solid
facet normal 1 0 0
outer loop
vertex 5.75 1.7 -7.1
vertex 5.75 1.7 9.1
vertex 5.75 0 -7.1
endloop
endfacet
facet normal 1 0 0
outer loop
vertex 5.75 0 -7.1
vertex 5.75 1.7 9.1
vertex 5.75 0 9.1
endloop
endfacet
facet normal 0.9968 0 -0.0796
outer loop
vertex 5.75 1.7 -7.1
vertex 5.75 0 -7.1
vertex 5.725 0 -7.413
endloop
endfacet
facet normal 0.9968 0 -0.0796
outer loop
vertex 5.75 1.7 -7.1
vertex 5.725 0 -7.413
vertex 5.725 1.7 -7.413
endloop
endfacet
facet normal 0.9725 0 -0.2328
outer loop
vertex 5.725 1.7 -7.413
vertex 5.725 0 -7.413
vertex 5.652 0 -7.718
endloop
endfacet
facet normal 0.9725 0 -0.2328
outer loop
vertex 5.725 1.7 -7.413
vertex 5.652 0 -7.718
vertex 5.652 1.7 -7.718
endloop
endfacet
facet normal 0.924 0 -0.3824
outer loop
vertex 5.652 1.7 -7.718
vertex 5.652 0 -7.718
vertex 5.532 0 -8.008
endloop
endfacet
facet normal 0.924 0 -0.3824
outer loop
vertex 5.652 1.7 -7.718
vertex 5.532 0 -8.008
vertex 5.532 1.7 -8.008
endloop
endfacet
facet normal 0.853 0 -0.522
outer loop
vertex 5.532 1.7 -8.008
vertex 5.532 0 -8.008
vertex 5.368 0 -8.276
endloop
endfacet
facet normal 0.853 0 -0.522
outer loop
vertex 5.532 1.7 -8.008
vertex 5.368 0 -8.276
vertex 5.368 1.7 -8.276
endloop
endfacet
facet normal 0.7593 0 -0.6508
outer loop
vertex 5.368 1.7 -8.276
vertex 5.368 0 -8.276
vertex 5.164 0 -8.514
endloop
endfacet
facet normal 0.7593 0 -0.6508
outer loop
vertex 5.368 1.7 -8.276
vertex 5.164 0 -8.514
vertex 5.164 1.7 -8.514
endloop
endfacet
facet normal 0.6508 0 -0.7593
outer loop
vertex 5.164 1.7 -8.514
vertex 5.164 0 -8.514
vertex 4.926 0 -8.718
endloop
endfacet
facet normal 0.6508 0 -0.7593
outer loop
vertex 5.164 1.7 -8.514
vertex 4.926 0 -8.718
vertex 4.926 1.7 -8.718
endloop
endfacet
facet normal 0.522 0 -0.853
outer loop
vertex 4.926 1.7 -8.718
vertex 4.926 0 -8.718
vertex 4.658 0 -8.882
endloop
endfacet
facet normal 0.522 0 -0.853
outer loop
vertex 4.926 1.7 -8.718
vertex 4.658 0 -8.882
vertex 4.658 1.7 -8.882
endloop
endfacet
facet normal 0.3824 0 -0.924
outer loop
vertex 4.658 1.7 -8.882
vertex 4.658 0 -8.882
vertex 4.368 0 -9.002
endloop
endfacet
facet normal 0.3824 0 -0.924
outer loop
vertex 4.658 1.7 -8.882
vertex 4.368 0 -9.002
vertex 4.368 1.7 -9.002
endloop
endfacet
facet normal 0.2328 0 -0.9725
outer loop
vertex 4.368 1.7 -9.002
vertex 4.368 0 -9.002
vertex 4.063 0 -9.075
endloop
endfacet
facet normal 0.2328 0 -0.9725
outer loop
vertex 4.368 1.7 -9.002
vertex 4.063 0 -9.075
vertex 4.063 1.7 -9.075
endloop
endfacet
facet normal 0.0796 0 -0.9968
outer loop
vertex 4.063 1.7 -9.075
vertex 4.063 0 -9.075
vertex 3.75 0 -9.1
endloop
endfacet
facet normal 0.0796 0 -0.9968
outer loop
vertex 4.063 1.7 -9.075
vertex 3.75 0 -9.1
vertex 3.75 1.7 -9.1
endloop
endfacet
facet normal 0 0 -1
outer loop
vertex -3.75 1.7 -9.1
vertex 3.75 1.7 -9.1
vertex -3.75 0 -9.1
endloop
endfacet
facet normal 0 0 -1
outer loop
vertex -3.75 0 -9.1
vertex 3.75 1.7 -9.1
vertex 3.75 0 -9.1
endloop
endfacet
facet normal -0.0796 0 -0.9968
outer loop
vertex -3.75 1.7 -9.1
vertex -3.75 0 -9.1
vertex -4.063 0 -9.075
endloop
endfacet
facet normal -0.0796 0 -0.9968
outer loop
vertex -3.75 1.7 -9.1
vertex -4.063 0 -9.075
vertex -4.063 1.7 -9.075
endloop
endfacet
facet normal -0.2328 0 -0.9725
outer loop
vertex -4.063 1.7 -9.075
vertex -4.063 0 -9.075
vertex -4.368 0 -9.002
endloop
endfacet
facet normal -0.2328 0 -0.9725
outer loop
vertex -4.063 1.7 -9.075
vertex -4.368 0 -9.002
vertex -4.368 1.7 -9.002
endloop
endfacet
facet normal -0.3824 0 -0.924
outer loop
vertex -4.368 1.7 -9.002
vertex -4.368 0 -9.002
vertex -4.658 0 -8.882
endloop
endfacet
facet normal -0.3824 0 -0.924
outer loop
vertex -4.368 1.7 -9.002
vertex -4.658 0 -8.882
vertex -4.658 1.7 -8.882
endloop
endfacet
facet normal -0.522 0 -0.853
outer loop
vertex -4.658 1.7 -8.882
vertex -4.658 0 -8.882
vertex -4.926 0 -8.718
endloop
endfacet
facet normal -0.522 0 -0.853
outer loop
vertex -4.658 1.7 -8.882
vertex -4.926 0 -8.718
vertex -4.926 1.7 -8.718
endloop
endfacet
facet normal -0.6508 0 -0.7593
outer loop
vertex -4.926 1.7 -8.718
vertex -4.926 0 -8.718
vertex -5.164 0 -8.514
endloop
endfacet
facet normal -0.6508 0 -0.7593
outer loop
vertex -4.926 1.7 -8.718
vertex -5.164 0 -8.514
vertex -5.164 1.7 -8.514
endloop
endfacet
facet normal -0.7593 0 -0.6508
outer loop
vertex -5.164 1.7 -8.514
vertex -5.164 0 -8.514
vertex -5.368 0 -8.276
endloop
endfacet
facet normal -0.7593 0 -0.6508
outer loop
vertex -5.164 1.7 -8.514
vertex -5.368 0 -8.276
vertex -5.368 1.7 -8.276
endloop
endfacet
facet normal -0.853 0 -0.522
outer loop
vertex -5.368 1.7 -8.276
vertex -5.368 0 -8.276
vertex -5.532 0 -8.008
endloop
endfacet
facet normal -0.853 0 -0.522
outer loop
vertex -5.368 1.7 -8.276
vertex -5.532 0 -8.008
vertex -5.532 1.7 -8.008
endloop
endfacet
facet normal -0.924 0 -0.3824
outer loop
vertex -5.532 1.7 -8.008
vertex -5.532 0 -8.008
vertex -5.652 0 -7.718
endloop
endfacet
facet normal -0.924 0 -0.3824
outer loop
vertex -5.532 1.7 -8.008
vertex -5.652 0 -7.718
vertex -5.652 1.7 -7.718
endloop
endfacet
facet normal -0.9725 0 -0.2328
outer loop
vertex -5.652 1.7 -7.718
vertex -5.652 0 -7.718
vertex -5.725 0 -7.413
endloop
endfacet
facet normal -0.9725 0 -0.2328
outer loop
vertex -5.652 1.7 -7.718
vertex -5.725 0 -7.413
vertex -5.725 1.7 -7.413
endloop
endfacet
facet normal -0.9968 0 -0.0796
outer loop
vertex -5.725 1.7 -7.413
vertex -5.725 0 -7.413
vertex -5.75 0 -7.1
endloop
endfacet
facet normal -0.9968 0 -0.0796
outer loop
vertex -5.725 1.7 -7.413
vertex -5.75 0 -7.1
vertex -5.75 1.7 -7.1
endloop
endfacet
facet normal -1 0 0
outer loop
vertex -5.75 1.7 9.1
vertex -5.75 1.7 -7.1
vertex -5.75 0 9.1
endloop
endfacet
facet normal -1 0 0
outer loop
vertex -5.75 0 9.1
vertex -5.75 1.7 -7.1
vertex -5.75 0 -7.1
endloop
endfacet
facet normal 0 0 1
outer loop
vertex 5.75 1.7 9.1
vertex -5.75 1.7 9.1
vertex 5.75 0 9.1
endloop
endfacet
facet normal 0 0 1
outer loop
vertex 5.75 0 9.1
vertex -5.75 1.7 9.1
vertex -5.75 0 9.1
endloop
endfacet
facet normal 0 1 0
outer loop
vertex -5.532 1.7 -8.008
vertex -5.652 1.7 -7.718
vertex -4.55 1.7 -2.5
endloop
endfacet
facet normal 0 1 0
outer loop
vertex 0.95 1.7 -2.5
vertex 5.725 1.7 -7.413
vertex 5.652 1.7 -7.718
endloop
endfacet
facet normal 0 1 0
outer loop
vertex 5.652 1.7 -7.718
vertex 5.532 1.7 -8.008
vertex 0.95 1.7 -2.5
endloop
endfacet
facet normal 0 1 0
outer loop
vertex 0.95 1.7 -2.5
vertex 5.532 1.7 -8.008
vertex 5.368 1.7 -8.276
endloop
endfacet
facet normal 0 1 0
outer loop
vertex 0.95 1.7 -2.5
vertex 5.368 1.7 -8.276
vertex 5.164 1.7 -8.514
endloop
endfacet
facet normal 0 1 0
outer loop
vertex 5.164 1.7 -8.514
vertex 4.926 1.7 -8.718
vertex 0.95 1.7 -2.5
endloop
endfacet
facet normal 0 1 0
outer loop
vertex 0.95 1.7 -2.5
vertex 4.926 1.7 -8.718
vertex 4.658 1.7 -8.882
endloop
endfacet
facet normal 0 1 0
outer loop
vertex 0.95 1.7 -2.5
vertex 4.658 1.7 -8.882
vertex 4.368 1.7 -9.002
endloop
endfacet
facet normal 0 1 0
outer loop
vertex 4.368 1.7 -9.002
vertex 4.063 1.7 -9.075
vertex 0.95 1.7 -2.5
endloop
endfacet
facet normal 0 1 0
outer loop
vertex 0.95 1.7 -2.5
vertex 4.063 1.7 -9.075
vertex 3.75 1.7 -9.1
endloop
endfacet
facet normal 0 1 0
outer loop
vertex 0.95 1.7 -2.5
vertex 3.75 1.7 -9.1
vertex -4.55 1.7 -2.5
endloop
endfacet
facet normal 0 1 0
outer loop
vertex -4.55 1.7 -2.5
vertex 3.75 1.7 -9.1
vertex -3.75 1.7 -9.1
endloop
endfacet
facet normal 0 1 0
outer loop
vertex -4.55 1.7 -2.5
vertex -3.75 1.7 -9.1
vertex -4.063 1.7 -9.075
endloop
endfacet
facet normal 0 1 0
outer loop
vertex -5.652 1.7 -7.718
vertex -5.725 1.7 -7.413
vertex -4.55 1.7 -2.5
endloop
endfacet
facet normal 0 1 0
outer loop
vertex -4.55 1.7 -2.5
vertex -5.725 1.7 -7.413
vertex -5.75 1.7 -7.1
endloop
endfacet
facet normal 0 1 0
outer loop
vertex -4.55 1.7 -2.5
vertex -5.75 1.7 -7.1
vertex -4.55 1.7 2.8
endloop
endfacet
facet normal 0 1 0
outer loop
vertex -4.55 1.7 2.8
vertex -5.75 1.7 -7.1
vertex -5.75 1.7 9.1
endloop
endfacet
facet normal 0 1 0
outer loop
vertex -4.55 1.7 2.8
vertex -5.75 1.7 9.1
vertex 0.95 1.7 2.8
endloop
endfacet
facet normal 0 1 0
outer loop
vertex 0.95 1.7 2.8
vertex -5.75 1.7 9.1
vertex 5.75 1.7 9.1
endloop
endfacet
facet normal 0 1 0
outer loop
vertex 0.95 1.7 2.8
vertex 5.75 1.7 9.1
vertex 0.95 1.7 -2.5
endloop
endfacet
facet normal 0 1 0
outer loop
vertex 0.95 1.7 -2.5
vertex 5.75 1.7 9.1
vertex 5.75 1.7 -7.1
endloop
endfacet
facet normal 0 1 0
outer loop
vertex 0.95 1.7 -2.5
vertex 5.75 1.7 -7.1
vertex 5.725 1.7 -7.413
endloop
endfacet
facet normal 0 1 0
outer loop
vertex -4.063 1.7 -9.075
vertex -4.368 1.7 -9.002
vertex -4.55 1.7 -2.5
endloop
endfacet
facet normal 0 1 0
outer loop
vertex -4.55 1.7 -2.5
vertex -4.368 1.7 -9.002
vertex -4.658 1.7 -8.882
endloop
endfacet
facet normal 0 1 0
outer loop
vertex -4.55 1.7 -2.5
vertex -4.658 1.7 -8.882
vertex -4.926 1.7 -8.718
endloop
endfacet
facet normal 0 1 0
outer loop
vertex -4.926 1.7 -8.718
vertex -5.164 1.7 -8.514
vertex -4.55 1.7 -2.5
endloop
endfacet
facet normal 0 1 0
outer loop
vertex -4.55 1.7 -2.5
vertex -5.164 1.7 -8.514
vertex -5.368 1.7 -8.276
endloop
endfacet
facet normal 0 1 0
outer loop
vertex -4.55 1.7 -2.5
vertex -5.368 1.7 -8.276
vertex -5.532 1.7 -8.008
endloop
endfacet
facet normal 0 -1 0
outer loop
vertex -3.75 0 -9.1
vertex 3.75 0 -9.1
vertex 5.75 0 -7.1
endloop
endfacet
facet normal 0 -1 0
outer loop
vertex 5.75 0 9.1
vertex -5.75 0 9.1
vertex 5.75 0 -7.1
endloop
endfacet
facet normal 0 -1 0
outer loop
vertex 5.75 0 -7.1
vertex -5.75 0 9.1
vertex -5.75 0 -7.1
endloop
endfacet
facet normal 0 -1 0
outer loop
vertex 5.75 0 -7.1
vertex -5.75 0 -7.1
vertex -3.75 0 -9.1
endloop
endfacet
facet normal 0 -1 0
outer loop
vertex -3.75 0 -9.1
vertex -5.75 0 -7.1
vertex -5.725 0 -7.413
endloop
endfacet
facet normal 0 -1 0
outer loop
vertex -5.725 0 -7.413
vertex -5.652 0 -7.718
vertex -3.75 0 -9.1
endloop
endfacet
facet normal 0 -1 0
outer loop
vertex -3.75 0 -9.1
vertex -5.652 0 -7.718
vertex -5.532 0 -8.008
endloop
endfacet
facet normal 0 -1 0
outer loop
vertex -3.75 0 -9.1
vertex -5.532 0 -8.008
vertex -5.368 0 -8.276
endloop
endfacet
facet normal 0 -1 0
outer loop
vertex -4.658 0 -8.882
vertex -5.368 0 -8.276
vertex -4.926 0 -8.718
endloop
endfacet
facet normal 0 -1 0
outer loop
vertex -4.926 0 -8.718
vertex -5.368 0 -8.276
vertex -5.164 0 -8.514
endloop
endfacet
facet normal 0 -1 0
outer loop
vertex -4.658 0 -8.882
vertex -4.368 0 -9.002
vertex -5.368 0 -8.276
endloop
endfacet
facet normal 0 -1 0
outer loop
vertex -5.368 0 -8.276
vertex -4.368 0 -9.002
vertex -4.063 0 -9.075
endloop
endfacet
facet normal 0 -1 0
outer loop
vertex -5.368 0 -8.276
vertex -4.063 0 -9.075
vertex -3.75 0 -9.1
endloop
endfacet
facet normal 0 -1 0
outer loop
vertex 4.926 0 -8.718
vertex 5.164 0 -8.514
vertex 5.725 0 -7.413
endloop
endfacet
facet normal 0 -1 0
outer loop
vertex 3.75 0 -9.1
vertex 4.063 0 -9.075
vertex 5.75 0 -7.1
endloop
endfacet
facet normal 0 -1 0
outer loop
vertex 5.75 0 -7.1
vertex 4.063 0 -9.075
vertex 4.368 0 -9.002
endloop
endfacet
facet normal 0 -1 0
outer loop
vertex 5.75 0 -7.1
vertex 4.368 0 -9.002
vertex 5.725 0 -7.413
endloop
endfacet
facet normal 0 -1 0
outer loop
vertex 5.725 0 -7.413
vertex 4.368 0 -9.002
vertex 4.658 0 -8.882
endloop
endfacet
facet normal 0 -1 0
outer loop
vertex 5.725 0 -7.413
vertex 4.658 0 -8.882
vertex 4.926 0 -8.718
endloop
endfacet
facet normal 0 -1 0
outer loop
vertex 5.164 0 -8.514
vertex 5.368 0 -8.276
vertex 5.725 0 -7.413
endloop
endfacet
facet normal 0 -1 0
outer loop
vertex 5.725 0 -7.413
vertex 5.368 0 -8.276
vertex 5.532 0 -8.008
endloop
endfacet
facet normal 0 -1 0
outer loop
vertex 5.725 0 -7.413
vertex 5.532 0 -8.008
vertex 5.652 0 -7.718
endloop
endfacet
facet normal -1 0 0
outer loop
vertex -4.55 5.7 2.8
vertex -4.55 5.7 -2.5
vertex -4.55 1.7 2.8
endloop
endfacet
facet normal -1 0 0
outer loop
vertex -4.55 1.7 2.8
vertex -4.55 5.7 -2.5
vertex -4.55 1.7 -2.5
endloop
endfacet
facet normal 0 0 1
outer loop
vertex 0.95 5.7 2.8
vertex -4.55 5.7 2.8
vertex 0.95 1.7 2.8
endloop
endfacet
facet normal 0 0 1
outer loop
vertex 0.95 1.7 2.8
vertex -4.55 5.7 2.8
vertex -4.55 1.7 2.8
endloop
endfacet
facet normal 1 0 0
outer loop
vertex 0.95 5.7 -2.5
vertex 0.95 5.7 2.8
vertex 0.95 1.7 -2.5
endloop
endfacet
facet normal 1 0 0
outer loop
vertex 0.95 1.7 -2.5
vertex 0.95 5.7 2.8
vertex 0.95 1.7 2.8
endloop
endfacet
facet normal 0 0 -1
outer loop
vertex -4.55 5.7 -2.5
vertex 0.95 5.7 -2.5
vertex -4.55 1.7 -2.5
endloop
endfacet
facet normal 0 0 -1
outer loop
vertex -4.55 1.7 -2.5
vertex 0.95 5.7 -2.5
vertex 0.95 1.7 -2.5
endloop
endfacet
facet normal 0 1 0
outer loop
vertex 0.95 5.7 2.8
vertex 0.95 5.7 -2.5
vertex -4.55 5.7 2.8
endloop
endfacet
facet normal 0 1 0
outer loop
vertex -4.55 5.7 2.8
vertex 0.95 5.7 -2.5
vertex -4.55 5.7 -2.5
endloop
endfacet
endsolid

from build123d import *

# Parameters (mm, degrees)
BOSS_EXTRUDE1_DEPTH = 1.7
SKETCH2_W           = 5.5
SKETCH2_H           = 5.3
BOSS_EXTRUDE2_DEPTH = 4


with BuildPart() as part:
    # Sketch1 → Boss-Extrude1 (new body)
    with BuildSketch(Plane(origin=(0, 0, 0), x_dir=(1, 0, 0), z_dir=(0, 1, 0))):
        with BuildLine():
            Line((-3.75, 9.1), (3.75, 9.1))
            ThreePointArc((3.75, 9.1), (5.164213562, 8.514213562), (5.75, 7.1))
            Line((5.75, 7.1), (5.75, -9.1))
            Line((5.75, -9.1), (-5.75, -9.1))
            Line((-5.75, -9.1), (-5.75, 7.1))
            ThreePointArc((-5.75, 7.1), (-5.164213562, 8.514213562), (-3.75, 9.1))
        make_face()
    extrude(amount=BOSS_EXTRUDE1_DEPTH)

    # Sketch2 → Boss-Extrude2 (add)
    with BuildSketch(Plane(origin=(0, 1.7, 0), x_dir=(1, 0, 0), z_dir=(0, 1, 0))):
        with Locations((-1.8, -0.15)):
            Rectangle(SKETCH2_W, SKETCH2_H)
    extrude(amount=BOSS_EXTRUDE2_DEPTH)


solid = part.part
